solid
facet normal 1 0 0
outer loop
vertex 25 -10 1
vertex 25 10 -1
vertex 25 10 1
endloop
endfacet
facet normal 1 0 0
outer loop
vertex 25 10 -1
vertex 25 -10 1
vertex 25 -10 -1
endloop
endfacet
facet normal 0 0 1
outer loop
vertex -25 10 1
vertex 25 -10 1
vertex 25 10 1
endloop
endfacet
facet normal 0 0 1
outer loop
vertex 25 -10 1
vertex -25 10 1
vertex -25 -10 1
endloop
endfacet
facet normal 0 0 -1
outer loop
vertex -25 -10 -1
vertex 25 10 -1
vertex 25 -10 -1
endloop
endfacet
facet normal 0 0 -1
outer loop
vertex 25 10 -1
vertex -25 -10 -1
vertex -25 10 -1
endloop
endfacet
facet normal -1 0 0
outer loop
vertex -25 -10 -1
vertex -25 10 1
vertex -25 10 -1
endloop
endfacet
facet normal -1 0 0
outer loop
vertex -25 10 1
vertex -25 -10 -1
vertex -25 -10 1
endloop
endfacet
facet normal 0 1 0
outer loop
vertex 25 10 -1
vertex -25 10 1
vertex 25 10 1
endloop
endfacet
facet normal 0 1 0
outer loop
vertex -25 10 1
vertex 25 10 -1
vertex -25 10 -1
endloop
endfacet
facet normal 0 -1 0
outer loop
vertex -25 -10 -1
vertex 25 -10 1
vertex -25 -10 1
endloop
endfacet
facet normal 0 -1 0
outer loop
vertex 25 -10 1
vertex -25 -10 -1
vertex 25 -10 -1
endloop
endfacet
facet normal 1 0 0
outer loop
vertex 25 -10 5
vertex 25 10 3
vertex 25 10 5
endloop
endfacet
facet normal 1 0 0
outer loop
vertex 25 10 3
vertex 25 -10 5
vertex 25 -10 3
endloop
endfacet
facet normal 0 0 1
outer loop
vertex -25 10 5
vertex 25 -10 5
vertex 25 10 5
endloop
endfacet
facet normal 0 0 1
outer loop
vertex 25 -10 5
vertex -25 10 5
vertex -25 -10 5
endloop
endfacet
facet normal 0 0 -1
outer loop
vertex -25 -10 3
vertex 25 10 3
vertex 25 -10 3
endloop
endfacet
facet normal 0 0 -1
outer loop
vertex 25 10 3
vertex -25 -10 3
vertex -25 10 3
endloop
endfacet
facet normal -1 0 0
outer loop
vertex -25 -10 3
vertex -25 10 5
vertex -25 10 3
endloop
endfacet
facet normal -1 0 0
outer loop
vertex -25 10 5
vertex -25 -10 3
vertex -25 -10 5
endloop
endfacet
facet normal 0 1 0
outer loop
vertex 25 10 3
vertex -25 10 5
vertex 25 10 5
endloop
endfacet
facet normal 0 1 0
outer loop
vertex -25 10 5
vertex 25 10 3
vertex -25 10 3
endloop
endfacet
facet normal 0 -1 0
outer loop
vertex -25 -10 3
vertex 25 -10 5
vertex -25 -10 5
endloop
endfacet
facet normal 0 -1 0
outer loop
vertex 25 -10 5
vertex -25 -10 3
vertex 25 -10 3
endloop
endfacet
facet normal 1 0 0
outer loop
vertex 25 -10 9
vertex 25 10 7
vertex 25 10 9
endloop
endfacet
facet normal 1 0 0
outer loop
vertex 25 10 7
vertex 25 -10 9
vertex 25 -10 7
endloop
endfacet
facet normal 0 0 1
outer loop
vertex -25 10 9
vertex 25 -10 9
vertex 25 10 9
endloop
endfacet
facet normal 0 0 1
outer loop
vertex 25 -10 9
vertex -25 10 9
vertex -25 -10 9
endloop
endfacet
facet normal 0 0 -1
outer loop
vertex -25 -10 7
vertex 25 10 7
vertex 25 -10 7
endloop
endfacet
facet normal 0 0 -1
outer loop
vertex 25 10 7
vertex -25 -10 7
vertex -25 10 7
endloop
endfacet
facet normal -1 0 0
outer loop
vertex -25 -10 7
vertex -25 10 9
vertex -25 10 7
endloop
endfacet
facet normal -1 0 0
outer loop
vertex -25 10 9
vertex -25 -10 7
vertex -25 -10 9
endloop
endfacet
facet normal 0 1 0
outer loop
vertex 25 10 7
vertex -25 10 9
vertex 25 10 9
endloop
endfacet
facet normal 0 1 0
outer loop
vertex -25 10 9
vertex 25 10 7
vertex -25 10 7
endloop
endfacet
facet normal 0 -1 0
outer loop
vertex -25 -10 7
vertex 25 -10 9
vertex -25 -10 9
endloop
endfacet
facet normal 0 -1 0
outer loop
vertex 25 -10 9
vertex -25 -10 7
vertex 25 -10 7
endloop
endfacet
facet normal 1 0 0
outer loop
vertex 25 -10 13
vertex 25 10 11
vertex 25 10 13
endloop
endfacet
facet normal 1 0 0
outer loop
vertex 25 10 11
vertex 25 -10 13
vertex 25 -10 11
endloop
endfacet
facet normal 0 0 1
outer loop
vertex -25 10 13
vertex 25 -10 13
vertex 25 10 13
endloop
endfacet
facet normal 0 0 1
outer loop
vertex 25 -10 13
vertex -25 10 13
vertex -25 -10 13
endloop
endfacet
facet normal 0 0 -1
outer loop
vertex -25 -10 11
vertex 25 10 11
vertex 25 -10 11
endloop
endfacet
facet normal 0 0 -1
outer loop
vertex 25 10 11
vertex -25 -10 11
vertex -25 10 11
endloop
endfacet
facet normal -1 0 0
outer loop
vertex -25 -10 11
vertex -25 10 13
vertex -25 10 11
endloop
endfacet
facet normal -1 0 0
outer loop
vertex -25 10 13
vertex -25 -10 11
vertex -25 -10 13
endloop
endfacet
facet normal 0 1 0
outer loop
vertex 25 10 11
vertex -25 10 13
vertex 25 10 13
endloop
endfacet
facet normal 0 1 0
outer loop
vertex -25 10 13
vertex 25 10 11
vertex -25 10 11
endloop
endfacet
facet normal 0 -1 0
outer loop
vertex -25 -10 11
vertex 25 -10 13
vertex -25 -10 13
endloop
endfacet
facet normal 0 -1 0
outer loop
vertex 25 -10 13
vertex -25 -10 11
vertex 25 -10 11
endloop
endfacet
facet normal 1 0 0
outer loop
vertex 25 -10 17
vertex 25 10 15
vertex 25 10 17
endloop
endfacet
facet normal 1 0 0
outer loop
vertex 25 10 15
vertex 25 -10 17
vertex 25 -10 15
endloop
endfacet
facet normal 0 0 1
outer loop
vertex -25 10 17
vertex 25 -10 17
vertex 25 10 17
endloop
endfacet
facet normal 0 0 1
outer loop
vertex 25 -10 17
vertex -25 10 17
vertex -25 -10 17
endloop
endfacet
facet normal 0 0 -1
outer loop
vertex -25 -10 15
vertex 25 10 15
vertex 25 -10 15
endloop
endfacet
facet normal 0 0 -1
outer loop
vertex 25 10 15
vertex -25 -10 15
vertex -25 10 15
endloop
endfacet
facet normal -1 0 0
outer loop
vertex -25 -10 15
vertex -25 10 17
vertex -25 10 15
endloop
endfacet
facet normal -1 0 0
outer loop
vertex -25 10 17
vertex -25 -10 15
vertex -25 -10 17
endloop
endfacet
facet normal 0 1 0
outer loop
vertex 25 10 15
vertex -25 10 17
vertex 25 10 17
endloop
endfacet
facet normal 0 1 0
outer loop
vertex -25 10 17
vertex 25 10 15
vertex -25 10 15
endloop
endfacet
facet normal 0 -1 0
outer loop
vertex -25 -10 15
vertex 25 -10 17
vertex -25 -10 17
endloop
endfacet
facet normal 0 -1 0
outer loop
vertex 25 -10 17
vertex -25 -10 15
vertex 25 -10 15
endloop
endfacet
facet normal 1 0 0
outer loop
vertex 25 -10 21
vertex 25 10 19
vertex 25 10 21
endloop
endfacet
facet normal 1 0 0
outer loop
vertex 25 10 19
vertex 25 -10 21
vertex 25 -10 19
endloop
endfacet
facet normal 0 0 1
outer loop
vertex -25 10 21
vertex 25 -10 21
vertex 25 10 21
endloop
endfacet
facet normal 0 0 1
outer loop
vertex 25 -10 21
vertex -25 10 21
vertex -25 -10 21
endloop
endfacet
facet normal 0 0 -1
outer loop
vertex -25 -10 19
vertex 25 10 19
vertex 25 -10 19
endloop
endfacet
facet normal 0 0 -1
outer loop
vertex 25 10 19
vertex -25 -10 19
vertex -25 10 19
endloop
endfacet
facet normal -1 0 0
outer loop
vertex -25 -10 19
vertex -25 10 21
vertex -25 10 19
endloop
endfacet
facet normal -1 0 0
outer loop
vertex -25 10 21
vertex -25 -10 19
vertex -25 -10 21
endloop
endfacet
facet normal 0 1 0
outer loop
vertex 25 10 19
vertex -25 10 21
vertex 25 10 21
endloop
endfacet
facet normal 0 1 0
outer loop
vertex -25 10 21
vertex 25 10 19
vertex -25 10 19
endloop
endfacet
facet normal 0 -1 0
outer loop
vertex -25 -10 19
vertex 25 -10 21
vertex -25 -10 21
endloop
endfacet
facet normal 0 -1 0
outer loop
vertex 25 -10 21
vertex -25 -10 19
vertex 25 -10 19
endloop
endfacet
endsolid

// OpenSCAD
// Define the dimensions of a single rectangular plate
module rectangular_plate(length, width, thickness) {
    cube([length, width, thickness], center = true);
}

// Parameters for the rectangular plates
plate_length = 50;      // Length of each plate
plate_width = 20;       // Width of each plate
plate_thickness = 2;    // Thickness of each plate
plate_spacing = 2;      // Spacing between plates
plate_count = 6;        // Number of plates

// Render the stacked plates
module stacked_plates() {
    for (i = [0:plate_count-1]) {
        translate([0, 0, i * (plate_thickness + plate_spacing)])
            rectangular_plate(plate_length, plate_width, plate_thickness);
    }
}

// Call the stacked plates module
stacked_plates();
